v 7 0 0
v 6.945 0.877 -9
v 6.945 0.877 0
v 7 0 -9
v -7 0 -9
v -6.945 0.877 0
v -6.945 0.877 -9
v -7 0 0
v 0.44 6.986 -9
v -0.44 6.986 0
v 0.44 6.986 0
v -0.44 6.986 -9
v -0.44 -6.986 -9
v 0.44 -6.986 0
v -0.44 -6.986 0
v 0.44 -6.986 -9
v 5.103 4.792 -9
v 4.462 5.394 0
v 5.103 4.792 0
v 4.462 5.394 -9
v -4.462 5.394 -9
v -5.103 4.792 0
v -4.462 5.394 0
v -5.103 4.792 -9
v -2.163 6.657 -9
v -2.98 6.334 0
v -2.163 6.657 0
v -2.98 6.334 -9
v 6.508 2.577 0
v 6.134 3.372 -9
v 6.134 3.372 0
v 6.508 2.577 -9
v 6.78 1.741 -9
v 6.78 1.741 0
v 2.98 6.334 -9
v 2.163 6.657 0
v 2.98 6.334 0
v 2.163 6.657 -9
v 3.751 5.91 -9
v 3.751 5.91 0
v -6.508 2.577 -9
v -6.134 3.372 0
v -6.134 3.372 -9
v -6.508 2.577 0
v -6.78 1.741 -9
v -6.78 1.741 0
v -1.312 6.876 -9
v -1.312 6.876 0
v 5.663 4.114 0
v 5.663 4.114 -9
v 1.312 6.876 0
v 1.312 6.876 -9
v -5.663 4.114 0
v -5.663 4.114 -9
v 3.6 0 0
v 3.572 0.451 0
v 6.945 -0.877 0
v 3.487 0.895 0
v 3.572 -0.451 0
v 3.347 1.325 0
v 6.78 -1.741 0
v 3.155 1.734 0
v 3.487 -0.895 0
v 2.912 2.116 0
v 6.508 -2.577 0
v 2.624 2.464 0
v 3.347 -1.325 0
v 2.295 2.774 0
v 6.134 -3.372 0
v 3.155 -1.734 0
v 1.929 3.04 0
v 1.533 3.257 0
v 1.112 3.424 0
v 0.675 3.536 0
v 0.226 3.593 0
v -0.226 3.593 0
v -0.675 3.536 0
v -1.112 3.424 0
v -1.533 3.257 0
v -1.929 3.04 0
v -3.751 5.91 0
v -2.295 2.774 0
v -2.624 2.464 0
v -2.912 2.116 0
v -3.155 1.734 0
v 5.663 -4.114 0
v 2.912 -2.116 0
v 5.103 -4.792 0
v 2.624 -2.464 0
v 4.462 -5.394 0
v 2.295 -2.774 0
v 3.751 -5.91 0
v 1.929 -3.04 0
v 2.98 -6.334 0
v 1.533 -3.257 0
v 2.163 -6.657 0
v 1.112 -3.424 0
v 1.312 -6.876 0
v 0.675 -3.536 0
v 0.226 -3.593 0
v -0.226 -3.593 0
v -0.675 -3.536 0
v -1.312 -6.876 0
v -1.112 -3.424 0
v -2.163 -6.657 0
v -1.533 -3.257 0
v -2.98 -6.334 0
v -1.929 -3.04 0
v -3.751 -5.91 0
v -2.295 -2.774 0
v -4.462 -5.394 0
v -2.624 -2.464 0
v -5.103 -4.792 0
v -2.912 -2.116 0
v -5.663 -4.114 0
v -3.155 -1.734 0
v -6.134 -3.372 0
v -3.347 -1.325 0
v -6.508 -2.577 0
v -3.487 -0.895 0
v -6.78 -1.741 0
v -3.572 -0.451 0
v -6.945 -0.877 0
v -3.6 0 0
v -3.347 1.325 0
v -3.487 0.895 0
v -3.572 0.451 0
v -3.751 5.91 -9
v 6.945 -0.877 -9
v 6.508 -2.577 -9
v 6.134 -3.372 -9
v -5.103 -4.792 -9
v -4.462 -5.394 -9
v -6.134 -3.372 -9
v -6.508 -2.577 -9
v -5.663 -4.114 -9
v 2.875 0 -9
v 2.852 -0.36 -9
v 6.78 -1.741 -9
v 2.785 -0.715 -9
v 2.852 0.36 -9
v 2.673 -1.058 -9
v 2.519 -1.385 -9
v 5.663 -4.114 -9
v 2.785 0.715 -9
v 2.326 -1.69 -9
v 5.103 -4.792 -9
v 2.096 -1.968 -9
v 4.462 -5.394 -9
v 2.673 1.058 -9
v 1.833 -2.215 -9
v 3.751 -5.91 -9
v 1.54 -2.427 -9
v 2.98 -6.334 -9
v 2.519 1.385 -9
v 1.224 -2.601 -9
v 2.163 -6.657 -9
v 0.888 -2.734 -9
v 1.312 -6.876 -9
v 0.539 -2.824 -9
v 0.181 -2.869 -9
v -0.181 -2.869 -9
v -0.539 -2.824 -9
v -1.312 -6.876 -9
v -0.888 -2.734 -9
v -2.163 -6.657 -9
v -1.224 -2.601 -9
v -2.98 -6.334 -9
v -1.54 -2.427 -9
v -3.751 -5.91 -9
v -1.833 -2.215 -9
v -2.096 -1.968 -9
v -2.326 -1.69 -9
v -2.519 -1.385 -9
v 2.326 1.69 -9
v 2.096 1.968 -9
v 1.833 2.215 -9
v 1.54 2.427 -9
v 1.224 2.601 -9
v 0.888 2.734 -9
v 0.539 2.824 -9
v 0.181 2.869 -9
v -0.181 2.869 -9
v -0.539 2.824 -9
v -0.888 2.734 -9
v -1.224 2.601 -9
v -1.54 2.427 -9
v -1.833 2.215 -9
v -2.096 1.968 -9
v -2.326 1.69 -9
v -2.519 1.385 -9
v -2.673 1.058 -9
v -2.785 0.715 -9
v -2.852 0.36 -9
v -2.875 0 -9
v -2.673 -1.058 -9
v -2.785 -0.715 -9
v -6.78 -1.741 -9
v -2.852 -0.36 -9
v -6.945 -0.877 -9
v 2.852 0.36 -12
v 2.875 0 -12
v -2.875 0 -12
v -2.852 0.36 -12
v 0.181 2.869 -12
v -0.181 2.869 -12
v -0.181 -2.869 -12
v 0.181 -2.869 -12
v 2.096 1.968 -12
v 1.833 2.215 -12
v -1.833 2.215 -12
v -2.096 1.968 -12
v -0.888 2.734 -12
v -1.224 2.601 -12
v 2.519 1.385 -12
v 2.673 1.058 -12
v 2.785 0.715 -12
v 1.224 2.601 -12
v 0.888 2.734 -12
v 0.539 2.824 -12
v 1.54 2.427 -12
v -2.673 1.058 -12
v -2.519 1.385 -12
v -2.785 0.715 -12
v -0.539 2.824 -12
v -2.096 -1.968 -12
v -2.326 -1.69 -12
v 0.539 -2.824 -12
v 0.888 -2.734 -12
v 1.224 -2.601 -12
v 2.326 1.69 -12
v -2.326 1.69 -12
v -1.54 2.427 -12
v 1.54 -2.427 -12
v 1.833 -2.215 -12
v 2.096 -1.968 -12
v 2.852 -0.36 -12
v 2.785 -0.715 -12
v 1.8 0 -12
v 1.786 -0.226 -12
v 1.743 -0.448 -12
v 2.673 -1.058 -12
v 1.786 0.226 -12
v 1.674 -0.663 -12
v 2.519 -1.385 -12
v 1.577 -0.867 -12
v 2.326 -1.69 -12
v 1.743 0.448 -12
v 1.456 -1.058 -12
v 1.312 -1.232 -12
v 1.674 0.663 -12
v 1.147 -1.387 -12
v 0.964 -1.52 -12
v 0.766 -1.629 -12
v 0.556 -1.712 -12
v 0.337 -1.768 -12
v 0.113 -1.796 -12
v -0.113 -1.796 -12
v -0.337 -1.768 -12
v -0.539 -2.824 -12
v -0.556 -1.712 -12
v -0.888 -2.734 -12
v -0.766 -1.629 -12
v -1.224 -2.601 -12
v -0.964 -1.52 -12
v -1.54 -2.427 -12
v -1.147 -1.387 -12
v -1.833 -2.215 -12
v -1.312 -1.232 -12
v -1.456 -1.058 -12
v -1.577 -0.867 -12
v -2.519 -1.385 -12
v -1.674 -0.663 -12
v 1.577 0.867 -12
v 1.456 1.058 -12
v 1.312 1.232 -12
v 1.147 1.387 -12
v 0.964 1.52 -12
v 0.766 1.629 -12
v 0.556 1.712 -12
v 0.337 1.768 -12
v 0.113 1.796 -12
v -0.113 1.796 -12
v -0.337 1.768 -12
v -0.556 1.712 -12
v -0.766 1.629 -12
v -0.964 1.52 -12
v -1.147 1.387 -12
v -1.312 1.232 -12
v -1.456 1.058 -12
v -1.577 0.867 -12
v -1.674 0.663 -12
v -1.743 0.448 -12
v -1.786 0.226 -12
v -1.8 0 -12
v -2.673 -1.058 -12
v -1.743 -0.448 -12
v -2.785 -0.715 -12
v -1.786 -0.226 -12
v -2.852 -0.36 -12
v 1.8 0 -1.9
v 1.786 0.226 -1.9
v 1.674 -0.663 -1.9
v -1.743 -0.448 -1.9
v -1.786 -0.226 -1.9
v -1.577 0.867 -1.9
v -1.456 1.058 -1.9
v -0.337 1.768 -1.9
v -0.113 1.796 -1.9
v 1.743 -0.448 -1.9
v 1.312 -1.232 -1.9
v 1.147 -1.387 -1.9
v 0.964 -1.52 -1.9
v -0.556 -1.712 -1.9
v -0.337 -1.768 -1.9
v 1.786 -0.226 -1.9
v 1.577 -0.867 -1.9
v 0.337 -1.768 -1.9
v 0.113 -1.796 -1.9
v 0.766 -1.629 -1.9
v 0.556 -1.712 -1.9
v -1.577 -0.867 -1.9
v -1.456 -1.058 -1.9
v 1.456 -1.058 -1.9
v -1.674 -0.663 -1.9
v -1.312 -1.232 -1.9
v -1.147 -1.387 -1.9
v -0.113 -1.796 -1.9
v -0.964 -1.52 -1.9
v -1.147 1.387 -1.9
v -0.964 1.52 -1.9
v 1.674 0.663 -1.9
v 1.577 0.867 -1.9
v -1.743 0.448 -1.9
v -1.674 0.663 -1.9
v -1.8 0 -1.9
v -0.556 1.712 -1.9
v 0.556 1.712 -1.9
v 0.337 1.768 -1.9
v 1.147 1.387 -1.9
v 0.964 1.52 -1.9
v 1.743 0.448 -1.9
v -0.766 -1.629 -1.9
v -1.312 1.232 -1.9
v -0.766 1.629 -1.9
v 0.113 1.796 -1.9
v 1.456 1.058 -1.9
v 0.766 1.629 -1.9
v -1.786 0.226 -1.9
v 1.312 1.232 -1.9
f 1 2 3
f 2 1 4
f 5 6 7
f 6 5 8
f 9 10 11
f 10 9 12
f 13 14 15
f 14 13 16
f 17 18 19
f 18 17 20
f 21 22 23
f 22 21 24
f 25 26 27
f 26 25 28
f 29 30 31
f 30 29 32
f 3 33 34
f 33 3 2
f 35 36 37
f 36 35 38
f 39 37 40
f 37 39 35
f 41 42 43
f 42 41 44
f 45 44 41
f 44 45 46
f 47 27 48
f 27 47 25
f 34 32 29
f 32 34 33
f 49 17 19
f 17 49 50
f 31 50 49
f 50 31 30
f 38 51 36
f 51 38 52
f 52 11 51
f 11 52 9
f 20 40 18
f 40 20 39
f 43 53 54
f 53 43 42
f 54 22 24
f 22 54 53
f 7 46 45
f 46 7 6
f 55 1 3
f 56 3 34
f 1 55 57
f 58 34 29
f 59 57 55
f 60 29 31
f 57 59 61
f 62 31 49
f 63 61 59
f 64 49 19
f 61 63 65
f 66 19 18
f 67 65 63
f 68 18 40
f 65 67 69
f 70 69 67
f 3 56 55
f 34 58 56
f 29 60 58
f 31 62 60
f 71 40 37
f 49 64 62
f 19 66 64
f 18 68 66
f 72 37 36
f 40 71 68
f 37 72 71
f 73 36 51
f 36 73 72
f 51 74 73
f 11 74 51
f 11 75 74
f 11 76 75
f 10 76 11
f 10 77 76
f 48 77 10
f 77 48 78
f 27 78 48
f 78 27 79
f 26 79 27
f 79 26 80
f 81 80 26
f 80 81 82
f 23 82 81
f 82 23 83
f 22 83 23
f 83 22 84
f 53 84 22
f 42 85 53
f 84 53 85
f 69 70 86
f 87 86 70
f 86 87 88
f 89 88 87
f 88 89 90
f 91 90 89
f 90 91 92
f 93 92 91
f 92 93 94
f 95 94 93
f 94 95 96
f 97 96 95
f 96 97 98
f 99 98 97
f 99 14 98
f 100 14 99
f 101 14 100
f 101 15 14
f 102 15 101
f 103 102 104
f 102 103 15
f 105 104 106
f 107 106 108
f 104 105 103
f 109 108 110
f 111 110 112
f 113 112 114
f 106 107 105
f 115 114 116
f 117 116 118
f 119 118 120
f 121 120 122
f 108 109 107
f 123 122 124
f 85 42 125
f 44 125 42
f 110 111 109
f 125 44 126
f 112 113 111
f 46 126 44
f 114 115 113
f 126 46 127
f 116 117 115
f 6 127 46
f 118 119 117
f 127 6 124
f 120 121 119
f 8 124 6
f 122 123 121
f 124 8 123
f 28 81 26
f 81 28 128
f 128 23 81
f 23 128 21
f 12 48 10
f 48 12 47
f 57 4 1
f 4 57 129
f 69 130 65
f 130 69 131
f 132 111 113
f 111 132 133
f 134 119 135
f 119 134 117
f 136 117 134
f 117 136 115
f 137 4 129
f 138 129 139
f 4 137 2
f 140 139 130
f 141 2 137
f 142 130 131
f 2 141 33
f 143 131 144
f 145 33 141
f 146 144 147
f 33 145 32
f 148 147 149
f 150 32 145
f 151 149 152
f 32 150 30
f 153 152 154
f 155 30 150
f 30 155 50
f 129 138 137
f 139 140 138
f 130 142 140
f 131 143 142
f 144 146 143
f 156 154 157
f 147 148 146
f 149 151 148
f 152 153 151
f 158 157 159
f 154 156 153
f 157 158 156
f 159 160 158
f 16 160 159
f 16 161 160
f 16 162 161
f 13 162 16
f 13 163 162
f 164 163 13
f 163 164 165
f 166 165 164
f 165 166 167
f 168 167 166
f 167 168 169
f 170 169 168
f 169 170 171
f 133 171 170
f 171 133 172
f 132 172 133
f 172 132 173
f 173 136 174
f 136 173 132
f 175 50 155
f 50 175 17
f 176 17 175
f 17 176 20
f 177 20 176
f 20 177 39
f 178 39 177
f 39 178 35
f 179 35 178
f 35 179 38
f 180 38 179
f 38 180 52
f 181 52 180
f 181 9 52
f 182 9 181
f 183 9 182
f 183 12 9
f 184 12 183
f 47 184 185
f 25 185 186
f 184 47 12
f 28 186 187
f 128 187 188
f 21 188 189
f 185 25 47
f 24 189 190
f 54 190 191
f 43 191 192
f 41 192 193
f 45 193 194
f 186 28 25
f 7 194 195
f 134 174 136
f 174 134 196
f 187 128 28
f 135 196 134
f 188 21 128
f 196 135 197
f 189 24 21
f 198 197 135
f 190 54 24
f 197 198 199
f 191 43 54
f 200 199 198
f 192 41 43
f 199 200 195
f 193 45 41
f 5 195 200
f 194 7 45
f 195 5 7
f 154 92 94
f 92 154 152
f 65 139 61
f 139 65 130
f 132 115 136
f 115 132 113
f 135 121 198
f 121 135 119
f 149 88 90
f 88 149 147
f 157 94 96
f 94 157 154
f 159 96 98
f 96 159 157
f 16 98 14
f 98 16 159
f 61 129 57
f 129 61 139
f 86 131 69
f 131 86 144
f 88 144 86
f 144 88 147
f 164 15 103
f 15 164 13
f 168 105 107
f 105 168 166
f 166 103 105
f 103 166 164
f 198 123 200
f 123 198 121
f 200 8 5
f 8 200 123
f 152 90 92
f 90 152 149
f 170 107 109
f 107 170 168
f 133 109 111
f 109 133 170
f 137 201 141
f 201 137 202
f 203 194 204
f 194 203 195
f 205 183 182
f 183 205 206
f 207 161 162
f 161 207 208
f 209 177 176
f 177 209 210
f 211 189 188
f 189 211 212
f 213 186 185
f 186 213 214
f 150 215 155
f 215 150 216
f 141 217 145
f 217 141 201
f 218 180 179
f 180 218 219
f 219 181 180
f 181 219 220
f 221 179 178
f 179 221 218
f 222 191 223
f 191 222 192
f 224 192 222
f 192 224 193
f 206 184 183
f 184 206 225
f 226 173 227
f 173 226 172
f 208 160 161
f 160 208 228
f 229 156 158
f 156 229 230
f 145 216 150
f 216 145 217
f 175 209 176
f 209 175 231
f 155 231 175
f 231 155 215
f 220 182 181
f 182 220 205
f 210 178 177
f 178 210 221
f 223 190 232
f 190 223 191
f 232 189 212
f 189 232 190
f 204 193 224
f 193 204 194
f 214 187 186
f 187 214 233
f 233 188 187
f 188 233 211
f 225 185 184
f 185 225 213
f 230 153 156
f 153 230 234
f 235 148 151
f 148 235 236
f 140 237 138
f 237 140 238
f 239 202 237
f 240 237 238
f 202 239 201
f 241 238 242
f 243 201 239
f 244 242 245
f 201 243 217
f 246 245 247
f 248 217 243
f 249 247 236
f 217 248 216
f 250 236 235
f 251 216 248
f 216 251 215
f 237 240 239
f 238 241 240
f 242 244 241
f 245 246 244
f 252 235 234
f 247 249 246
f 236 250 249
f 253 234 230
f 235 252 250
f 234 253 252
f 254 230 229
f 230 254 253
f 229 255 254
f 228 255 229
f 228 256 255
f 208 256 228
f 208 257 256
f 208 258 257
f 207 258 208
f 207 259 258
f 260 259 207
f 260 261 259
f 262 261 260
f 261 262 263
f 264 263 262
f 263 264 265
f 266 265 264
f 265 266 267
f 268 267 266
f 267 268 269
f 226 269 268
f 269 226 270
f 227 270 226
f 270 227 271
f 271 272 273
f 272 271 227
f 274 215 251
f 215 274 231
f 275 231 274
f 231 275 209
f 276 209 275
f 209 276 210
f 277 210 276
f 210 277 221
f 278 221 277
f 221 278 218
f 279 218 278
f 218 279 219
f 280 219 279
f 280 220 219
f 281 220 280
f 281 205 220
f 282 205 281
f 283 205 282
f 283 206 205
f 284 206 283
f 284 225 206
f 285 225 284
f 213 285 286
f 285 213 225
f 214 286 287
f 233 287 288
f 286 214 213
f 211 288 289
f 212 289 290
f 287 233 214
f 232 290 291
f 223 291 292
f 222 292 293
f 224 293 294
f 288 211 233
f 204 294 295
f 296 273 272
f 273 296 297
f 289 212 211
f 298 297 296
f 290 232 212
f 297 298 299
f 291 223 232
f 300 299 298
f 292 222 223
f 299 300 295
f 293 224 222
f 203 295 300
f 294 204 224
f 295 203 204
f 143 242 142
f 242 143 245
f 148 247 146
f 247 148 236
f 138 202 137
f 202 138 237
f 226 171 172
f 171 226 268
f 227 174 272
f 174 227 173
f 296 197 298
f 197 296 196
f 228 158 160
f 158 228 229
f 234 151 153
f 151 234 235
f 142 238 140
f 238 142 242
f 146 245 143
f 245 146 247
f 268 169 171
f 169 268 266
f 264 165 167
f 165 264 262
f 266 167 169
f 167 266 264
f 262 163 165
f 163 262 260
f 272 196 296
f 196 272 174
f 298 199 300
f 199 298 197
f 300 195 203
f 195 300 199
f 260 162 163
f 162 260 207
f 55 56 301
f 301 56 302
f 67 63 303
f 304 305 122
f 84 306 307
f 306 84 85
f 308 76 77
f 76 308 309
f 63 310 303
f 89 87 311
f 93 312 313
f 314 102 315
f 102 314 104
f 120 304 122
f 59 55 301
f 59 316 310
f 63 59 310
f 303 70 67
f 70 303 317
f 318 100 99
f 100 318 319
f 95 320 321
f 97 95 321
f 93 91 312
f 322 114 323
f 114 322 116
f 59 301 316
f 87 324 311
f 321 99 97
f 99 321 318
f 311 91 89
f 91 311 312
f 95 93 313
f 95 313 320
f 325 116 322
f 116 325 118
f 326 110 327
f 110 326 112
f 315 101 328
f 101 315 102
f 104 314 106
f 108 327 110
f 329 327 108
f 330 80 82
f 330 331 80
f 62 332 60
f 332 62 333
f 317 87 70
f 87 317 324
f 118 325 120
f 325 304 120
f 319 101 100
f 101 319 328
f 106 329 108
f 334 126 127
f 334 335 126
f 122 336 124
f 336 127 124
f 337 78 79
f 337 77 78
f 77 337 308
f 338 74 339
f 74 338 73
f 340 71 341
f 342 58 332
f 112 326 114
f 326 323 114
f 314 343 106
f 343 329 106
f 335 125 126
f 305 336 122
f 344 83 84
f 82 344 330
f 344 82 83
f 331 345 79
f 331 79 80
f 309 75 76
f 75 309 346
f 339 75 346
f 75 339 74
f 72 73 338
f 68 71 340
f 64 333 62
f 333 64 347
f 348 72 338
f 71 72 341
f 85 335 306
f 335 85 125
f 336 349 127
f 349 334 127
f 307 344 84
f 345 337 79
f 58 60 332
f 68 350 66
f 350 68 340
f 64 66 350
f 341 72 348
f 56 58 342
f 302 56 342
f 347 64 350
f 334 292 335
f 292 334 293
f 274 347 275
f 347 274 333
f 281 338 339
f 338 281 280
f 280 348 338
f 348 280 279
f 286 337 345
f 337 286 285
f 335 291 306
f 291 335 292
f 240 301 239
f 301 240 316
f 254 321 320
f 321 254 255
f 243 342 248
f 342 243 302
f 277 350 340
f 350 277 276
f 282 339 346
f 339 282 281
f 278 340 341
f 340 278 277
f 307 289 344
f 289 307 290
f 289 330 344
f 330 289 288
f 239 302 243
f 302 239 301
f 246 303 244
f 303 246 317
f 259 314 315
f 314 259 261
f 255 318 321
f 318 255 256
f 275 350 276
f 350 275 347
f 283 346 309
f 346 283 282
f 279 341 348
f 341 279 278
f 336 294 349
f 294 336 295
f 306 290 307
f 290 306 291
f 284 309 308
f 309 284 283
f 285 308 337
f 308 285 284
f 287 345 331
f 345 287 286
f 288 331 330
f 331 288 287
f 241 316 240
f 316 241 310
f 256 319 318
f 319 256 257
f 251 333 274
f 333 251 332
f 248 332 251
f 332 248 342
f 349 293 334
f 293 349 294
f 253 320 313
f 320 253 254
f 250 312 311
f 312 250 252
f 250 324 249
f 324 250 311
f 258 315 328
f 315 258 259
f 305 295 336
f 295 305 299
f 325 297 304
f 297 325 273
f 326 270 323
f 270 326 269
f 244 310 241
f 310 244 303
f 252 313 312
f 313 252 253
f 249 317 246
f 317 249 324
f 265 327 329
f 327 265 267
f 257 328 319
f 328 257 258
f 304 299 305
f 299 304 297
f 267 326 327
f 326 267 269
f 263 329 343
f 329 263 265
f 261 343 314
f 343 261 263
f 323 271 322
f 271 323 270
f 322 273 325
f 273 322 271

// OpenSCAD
$fn = 50;


difference() {
	union() {
		translate(v = [0, 0, -9.0000000000]) {
			cylinder(h = 9, r = 7.0000000000);
		}
		#translate(v = [0, 0, -12.0000000000]) {
			cylinder(h = 12, r = 2.8750000000);
		}
	}
	union() {
		translate(v = [0, 0, 0]) {
			rotate(a = [0, 0, 0]) {
				difference() {
					union() {
						translate(v = [0, 0, -12.0000000000]) {
							cylinder(h = 12, r = 1.5000000000);
						}
						translate(v = [0, 0, -1.9000000000]) {
							cylinder(h = 1.9000000000, r1 = 1.8000000000, r2 = 3.6000000000);
						}
						translate(v = [0, 0, -12.0000000000]) {
							cylinder(h = 12, r = 1.8000000000);
						}
						translate(v = [0, 0, -12.0000000000]) {
							cylinder(h = 12, r = 1.5000000000);
						}
					}
					union();
				}
			}
		}
	}
}
